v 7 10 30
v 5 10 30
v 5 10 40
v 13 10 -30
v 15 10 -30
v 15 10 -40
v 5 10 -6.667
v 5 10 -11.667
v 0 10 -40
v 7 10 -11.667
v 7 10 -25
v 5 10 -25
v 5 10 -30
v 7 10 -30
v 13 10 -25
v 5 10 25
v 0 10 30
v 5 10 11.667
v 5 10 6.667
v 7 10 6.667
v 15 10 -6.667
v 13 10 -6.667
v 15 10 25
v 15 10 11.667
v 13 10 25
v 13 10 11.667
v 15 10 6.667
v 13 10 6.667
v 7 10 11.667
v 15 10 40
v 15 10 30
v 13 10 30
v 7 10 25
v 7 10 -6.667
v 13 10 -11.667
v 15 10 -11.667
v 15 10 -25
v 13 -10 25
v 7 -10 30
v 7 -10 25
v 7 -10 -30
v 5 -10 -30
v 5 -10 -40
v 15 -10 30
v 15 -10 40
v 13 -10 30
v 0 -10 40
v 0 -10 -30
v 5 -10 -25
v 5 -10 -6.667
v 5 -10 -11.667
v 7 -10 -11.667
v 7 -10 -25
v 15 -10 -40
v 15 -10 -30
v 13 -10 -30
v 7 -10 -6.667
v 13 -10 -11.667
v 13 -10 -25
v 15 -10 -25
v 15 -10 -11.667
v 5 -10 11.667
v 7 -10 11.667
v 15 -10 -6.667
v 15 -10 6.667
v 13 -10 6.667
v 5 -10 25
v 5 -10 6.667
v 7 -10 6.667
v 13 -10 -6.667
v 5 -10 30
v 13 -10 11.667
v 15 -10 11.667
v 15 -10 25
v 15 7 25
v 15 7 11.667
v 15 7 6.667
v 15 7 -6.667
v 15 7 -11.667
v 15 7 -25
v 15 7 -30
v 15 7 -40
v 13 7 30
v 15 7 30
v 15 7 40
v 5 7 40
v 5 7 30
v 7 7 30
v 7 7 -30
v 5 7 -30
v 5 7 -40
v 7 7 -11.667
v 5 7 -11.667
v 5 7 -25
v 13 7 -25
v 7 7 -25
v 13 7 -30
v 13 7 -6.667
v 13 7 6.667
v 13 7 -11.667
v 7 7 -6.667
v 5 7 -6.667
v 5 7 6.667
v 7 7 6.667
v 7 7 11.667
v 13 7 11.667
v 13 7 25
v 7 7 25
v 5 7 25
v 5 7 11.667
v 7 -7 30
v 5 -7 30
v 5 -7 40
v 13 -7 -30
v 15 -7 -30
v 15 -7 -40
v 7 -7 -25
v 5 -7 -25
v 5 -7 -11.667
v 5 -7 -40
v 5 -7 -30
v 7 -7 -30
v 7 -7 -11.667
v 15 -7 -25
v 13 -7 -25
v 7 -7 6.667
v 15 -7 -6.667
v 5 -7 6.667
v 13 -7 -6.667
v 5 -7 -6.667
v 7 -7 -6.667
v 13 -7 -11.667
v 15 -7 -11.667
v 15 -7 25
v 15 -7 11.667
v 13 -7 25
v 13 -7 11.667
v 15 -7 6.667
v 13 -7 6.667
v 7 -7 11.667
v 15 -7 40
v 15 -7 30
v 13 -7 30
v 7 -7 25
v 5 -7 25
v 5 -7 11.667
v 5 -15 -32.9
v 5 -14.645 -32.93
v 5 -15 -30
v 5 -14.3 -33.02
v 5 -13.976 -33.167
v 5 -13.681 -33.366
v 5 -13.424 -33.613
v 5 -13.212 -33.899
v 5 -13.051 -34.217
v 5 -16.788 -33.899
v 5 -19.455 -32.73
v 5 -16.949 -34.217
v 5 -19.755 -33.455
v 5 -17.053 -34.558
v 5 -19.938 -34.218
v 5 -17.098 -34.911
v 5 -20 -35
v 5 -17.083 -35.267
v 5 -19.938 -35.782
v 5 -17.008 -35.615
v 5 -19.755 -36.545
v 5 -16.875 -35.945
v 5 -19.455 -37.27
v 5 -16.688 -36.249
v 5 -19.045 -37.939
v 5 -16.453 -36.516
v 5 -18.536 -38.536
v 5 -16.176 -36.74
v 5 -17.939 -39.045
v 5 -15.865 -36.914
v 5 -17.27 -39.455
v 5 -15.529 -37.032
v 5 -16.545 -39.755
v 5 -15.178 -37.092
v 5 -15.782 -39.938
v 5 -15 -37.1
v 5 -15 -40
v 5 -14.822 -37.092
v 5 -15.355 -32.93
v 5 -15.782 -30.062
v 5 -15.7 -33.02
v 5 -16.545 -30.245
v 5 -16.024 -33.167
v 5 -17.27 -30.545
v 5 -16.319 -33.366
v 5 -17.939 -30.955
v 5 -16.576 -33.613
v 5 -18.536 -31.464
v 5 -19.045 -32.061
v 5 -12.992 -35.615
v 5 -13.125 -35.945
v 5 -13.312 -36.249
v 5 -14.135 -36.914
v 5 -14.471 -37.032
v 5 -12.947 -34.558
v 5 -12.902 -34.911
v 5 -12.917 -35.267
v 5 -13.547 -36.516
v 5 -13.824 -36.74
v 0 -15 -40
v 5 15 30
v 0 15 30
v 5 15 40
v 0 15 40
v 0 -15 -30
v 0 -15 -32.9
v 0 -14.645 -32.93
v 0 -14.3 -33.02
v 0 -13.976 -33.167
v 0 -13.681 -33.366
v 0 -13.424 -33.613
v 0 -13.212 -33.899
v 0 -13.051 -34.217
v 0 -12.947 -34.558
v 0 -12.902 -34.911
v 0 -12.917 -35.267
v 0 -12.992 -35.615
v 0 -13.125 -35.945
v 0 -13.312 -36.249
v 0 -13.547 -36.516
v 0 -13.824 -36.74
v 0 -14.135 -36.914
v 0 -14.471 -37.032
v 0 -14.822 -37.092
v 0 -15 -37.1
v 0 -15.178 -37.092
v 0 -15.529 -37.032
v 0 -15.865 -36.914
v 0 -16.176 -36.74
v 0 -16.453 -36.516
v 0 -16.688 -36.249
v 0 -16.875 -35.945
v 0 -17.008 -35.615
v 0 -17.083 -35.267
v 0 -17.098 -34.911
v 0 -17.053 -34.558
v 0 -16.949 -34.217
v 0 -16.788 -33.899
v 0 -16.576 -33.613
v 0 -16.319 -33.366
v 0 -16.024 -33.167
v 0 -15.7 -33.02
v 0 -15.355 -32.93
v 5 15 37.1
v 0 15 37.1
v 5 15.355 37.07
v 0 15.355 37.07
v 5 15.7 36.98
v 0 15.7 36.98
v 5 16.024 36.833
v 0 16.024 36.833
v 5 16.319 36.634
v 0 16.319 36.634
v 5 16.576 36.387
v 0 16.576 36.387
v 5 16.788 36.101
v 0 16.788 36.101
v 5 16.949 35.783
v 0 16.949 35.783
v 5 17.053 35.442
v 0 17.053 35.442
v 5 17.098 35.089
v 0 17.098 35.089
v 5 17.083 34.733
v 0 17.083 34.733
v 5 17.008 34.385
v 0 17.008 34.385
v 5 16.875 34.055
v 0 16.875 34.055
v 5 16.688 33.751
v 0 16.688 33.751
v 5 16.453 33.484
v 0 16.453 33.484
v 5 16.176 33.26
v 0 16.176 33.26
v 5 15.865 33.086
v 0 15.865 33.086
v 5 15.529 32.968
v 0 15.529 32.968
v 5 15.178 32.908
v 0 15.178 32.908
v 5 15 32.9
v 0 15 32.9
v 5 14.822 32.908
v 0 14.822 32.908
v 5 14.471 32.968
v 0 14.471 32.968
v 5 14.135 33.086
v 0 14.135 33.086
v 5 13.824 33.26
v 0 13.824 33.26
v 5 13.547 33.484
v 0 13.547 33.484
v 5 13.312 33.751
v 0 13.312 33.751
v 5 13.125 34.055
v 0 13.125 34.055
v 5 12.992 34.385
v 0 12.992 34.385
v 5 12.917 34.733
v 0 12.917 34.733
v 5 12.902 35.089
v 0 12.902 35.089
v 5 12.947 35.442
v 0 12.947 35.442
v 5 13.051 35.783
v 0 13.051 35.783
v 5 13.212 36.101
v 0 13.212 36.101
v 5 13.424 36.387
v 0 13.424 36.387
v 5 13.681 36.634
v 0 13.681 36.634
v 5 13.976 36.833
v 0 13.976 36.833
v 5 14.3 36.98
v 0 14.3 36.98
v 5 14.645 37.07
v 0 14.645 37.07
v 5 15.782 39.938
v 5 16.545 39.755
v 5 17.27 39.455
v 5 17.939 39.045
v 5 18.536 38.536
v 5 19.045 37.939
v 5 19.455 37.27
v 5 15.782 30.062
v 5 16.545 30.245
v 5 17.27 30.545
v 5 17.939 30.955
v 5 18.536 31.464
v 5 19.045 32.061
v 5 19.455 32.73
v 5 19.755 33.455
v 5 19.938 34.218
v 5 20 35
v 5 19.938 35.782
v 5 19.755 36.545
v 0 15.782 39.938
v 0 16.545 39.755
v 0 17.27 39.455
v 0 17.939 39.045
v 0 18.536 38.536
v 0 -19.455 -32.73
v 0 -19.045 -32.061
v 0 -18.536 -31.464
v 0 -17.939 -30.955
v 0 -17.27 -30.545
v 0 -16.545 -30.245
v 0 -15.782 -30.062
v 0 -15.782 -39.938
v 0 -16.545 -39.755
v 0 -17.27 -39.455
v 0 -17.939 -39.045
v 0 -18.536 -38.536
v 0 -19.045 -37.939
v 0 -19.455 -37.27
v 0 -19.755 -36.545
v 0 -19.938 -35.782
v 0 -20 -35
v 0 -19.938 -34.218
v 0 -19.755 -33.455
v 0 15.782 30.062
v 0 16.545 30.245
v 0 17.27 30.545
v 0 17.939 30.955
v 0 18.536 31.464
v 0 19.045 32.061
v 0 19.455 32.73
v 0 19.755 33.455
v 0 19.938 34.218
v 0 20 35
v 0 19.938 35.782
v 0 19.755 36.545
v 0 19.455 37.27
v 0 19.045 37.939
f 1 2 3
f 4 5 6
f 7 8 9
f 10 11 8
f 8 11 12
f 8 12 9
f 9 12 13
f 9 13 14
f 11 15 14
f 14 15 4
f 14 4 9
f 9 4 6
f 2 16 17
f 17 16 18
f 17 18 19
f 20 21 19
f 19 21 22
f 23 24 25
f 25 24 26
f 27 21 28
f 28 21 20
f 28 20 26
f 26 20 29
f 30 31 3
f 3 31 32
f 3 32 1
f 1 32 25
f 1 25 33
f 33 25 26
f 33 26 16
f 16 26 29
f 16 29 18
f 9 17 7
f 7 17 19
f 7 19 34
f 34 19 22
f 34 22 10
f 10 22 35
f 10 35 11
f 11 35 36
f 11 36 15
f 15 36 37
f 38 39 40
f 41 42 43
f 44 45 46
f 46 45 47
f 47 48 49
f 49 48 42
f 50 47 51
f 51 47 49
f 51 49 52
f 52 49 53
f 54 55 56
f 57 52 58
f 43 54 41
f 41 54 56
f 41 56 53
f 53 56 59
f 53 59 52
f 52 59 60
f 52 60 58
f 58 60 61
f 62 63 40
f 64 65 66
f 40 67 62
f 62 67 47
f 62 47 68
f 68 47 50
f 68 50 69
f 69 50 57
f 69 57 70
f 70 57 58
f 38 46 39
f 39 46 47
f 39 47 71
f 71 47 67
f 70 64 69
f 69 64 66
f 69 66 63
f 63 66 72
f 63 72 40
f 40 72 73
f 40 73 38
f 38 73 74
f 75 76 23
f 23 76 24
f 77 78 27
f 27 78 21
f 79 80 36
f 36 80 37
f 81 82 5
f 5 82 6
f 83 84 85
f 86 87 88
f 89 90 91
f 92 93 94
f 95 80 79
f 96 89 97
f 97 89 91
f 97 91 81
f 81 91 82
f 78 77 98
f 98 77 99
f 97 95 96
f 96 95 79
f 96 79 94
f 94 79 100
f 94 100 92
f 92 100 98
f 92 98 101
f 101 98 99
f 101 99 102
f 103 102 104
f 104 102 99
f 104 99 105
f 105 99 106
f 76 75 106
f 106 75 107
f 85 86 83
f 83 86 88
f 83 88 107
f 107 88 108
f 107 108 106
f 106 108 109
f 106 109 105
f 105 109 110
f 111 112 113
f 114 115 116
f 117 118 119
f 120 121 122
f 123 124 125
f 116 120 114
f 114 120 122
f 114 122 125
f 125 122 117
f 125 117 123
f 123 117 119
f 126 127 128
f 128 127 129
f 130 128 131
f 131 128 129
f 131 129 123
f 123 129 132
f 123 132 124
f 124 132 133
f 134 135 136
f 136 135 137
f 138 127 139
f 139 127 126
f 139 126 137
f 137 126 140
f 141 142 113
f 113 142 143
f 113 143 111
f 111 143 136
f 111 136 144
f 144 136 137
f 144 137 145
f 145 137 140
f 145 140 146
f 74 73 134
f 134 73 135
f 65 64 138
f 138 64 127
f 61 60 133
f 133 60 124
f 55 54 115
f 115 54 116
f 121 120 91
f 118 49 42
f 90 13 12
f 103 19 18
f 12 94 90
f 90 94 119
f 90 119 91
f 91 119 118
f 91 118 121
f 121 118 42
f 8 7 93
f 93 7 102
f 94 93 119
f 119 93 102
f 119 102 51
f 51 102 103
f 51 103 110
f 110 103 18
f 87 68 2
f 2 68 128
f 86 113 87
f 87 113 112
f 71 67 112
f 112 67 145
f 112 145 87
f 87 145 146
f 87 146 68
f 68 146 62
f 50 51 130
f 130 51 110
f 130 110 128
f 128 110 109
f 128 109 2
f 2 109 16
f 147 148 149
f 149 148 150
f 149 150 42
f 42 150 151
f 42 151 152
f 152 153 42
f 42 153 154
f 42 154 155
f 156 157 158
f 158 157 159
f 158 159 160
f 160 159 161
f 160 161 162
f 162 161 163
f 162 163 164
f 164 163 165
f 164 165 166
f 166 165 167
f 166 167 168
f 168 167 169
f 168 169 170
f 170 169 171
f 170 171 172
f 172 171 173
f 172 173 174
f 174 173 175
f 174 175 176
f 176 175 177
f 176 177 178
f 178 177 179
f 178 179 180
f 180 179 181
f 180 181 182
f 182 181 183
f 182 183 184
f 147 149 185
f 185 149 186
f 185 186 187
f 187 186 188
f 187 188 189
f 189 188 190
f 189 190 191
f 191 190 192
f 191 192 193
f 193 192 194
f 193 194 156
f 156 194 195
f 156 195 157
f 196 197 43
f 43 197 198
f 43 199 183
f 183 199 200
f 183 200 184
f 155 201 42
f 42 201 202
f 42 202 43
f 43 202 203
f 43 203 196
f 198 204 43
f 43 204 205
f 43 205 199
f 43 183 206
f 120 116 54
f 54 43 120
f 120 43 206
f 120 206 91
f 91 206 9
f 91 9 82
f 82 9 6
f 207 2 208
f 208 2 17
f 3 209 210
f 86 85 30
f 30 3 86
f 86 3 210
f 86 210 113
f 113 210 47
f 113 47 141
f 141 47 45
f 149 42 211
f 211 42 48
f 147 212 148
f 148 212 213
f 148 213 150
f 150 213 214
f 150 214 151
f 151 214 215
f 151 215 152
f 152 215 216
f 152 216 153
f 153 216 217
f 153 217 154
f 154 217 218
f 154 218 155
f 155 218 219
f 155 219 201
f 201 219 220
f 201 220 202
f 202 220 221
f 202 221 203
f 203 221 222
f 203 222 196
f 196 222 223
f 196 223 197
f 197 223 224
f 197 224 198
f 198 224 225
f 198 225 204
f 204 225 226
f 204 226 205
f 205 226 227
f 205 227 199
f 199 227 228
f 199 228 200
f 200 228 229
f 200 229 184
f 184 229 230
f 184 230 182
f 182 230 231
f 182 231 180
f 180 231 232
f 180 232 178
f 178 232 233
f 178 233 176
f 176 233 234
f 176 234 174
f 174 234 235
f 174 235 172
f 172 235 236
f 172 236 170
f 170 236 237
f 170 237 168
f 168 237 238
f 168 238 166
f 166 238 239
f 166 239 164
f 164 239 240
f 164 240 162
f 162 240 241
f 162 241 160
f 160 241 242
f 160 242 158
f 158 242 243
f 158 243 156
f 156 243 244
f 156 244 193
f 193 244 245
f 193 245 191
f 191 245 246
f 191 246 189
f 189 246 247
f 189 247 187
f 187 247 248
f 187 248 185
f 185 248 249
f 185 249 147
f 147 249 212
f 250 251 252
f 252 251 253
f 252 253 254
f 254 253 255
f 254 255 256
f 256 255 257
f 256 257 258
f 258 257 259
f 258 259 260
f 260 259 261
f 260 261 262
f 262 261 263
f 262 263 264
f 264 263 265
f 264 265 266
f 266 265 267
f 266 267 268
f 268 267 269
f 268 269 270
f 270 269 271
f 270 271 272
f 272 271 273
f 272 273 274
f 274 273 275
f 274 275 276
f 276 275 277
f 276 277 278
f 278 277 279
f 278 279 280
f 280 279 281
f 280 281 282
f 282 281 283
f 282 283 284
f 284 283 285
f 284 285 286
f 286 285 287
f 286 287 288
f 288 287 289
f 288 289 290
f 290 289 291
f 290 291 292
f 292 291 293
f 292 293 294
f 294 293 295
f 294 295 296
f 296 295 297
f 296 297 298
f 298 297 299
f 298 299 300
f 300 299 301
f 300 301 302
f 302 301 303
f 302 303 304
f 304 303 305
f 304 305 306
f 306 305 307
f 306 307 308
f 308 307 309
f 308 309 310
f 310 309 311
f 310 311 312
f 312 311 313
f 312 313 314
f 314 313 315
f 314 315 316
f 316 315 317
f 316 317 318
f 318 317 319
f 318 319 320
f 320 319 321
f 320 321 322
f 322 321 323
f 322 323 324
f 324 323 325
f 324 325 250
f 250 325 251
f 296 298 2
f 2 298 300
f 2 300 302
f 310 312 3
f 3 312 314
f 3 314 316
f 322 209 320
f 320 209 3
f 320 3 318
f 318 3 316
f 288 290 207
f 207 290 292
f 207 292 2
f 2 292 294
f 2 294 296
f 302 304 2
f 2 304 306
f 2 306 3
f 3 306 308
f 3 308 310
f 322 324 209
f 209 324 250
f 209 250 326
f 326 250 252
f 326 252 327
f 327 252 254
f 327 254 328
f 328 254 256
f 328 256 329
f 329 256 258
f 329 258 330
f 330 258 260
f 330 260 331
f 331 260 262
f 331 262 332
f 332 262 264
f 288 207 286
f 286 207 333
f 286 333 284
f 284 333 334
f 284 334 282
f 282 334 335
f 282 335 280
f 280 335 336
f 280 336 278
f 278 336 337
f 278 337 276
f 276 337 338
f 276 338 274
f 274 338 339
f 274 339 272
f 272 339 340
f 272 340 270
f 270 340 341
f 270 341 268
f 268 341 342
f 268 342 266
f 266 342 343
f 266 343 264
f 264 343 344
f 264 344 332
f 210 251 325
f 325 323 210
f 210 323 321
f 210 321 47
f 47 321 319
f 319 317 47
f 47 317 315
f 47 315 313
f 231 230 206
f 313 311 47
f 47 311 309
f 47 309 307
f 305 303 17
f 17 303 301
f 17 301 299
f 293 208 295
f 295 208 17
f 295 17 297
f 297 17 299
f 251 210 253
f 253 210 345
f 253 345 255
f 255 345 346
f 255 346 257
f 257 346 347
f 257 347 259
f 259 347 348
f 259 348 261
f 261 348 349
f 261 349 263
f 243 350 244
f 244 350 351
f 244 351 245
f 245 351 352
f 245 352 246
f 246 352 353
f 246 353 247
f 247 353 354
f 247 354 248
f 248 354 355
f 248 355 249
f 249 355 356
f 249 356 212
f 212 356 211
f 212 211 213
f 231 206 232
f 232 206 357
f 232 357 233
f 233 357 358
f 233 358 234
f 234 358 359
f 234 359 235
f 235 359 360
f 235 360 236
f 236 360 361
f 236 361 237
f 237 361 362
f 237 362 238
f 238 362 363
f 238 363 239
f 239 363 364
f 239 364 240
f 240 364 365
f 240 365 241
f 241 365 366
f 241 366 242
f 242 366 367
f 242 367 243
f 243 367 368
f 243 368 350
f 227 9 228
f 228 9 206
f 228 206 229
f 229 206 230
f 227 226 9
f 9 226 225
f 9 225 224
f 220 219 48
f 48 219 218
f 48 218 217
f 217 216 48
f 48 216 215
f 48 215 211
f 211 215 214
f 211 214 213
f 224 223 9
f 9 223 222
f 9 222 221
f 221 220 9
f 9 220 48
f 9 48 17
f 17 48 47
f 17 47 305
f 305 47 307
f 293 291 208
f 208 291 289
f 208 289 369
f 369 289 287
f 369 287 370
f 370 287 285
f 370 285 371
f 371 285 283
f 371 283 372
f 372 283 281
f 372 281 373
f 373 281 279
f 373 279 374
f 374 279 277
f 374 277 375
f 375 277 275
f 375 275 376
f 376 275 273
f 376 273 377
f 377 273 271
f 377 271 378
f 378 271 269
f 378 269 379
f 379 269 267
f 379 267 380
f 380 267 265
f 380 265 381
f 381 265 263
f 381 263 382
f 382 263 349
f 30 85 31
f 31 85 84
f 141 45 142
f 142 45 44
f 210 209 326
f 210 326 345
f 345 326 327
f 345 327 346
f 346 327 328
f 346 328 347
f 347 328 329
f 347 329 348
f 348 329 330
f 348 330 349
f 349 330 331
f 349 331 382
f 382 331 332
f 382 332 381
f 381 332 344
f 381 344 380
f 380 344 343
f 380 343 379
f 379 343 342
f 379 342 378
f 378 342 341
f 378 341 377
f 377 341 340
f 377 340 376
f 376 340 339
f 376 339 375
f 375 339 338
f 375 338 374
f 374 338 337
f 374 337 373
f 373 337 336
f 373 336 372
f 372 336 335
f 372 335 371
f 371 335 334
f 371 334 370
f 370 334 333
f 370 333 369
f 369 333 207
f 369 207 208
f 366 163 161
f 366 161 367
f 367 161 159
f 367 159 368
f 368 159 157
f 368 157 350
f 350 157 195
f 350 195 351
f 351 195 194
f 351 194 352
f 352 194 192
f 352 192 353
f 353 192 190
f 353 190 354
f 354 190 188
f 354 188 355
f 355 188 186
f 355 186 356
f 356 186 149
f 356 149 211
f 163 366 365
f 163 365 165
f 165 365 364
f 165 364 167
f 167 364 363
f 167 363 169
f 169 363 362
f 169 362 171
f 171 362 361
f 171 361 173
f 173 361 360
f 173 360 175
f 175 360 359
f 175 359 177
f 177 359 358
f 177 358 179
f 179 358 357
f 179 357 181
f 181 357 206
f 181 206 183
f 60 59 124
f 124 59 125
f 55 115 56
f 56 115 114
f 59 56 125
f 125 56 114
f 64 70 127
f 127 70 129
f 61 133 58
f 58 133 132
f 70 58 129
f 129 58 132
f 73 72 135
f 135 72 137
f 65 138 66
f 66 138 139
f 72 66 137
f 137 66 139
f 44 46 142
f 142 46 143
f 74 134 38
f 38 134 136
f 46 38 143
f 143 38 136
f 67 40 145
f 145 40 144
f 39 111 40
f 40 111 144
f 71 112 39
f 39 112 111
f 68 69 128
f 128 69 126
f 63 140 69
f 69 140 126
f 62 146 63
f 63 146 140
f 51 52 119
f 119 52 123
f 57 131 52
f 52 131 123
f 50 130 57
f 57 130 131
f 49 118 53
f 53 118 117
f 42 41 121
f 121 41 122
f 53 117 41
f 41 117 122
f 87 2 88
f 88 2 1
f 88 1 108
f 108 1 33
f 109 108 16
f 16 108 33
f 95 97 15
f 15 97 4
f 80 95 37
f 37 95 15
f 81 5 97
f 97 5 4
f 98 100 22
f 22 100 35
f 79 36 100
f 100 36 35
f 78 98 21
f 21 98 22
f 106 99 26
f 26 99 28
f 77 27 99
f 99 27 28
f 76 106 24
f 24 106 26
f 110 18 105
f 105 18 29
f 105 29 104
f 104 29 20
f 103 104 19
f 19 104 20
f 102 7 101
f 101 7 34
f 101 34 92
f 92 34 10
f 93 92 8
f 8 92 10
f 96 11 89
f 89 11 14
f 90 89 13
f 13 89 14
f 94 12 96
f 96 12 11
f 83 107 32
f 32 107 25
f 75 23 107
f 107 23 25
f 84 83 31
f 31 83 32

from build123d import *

# Parameters (mm, degrees)
SKETCH1_W           = 80
SKETCH1_H           = 20
SKETCH1_W_2         = 10
SKETCH1_H_2         = 10
SKETCH1_R           = 2.1
BOSS_EXTRUDE1_DEPTH = 5
SKETCH2_W           = 10
SKETCH2_H           = 3
BOSS_EXTRUDE2_DEPTH = 80
FILLET1_R           = 5
SKETCH3_W           = 2
SKETCH3_H           = 5
CUT_EXTRUDE1_DEPTH  = 53.201532545


with BuildPart() as part:
    # Sketch1 → Boss-Extrude1 (new body)
    # profile 1 of 3: a face of its own
    with BuildSketch(Plane(origin=(0, 0, 0), x_dir=(0, 0, -1), z_dir=(1, 0, 0))):
        Rectangle(SKETCH1_W, SKETCH1_H)
    # profile 2 of 3: a face of its own
    with BuildSketch(Plane(origin=(0, 0, 0), x_dir=(0, 0, -1), z_dir=(1, 0, 0))):
        with Locations((-35, 15)):
            Rectangle(SKETCH1_W_2, SKETCH1_H_2)
        with Locations((-35, 15)):
            Circle(SKETCH1_R, mode=Mode.SUBTRACT)
    # profile 3 of 3: a face of its own
    with BuildSketch(Plane(origin=(0, 0, 0), x_dir=(0, 0, -1), z_dir=(1, 0, 0))):
        with Locations((35, -15)):
            Rectangle(SKETCH1_W_2, SKETCH1_H_2)
        with Locations((35, -15)):
            Circle(SKETCH1_R, mode=Mode.SUBTRACT)
    extrude(amount=BOSS_EXTRUDE1_DEPTH)

    # Sketch2 → Boss-Extrude2 (add)
    with BuildSketch(Plane.XY.offset(40)):
        with Locations((10, 8.5)):
            Rectangle(SKETCH2_W, SKETCH2_H)
        with Locations((10, -8.5)):
            Rectangle(SKETCH2_W, SKETCH2_H)
    extrude(amount=-BOSS_EXTRUDE2_DEPTH)

    # Fillet1
    fillet1_edges = [part.edges().sort_by_distance(p)[0] for p in [
        (2.5, 20, 30),
        (2.5, 20, 40),
        (2.5, -20, -40),
        (2.5, -20, -30),
    ]]
    fillet(fillet1_edges, radius=FILLET1_R - 0.0001)  # a hair under: the kernel refuses the full size

    # Sketch3 → Cut-Extrude1 (cut, through all)
    with BuildSketch(Plane.XZ.offset(10)):
        with Locations((6, 27.5)):
            Rectangle(SKETCH3_W, SKETCH3_H)
        with Locations((6, 9.166666667)):
            Rectangle(SKETCH3_W, SKETCH3_H)
        with Locations((6, -9.166666667)):
            Rectangle(SKETCH3_W, SKETCH3_H)
        with Locations((6, -27.5)):
            Rectangle(SKETCH3_W, SKETCH3_H)
        with Locations((14, 27.5)):
            Rectangle(SKETCH3_W, SKETCH3_H)
        with Locations((14, 9.166666667)):
            Rectangle(SKETCH3_W, SKETCH3_H)
        with Locations((14, -9.166666667)):
            Rectangle(SKETCH3_W, SKETCH3_H)
        with Locations((14, -27.5)):
            Rectangle(SKETCH3_W, SKETCH3_H)
    extrude(amount=-CUT_EXTRUDE1_DEPTH, mode=Mode.SUBTRACT)


solid = part.part
